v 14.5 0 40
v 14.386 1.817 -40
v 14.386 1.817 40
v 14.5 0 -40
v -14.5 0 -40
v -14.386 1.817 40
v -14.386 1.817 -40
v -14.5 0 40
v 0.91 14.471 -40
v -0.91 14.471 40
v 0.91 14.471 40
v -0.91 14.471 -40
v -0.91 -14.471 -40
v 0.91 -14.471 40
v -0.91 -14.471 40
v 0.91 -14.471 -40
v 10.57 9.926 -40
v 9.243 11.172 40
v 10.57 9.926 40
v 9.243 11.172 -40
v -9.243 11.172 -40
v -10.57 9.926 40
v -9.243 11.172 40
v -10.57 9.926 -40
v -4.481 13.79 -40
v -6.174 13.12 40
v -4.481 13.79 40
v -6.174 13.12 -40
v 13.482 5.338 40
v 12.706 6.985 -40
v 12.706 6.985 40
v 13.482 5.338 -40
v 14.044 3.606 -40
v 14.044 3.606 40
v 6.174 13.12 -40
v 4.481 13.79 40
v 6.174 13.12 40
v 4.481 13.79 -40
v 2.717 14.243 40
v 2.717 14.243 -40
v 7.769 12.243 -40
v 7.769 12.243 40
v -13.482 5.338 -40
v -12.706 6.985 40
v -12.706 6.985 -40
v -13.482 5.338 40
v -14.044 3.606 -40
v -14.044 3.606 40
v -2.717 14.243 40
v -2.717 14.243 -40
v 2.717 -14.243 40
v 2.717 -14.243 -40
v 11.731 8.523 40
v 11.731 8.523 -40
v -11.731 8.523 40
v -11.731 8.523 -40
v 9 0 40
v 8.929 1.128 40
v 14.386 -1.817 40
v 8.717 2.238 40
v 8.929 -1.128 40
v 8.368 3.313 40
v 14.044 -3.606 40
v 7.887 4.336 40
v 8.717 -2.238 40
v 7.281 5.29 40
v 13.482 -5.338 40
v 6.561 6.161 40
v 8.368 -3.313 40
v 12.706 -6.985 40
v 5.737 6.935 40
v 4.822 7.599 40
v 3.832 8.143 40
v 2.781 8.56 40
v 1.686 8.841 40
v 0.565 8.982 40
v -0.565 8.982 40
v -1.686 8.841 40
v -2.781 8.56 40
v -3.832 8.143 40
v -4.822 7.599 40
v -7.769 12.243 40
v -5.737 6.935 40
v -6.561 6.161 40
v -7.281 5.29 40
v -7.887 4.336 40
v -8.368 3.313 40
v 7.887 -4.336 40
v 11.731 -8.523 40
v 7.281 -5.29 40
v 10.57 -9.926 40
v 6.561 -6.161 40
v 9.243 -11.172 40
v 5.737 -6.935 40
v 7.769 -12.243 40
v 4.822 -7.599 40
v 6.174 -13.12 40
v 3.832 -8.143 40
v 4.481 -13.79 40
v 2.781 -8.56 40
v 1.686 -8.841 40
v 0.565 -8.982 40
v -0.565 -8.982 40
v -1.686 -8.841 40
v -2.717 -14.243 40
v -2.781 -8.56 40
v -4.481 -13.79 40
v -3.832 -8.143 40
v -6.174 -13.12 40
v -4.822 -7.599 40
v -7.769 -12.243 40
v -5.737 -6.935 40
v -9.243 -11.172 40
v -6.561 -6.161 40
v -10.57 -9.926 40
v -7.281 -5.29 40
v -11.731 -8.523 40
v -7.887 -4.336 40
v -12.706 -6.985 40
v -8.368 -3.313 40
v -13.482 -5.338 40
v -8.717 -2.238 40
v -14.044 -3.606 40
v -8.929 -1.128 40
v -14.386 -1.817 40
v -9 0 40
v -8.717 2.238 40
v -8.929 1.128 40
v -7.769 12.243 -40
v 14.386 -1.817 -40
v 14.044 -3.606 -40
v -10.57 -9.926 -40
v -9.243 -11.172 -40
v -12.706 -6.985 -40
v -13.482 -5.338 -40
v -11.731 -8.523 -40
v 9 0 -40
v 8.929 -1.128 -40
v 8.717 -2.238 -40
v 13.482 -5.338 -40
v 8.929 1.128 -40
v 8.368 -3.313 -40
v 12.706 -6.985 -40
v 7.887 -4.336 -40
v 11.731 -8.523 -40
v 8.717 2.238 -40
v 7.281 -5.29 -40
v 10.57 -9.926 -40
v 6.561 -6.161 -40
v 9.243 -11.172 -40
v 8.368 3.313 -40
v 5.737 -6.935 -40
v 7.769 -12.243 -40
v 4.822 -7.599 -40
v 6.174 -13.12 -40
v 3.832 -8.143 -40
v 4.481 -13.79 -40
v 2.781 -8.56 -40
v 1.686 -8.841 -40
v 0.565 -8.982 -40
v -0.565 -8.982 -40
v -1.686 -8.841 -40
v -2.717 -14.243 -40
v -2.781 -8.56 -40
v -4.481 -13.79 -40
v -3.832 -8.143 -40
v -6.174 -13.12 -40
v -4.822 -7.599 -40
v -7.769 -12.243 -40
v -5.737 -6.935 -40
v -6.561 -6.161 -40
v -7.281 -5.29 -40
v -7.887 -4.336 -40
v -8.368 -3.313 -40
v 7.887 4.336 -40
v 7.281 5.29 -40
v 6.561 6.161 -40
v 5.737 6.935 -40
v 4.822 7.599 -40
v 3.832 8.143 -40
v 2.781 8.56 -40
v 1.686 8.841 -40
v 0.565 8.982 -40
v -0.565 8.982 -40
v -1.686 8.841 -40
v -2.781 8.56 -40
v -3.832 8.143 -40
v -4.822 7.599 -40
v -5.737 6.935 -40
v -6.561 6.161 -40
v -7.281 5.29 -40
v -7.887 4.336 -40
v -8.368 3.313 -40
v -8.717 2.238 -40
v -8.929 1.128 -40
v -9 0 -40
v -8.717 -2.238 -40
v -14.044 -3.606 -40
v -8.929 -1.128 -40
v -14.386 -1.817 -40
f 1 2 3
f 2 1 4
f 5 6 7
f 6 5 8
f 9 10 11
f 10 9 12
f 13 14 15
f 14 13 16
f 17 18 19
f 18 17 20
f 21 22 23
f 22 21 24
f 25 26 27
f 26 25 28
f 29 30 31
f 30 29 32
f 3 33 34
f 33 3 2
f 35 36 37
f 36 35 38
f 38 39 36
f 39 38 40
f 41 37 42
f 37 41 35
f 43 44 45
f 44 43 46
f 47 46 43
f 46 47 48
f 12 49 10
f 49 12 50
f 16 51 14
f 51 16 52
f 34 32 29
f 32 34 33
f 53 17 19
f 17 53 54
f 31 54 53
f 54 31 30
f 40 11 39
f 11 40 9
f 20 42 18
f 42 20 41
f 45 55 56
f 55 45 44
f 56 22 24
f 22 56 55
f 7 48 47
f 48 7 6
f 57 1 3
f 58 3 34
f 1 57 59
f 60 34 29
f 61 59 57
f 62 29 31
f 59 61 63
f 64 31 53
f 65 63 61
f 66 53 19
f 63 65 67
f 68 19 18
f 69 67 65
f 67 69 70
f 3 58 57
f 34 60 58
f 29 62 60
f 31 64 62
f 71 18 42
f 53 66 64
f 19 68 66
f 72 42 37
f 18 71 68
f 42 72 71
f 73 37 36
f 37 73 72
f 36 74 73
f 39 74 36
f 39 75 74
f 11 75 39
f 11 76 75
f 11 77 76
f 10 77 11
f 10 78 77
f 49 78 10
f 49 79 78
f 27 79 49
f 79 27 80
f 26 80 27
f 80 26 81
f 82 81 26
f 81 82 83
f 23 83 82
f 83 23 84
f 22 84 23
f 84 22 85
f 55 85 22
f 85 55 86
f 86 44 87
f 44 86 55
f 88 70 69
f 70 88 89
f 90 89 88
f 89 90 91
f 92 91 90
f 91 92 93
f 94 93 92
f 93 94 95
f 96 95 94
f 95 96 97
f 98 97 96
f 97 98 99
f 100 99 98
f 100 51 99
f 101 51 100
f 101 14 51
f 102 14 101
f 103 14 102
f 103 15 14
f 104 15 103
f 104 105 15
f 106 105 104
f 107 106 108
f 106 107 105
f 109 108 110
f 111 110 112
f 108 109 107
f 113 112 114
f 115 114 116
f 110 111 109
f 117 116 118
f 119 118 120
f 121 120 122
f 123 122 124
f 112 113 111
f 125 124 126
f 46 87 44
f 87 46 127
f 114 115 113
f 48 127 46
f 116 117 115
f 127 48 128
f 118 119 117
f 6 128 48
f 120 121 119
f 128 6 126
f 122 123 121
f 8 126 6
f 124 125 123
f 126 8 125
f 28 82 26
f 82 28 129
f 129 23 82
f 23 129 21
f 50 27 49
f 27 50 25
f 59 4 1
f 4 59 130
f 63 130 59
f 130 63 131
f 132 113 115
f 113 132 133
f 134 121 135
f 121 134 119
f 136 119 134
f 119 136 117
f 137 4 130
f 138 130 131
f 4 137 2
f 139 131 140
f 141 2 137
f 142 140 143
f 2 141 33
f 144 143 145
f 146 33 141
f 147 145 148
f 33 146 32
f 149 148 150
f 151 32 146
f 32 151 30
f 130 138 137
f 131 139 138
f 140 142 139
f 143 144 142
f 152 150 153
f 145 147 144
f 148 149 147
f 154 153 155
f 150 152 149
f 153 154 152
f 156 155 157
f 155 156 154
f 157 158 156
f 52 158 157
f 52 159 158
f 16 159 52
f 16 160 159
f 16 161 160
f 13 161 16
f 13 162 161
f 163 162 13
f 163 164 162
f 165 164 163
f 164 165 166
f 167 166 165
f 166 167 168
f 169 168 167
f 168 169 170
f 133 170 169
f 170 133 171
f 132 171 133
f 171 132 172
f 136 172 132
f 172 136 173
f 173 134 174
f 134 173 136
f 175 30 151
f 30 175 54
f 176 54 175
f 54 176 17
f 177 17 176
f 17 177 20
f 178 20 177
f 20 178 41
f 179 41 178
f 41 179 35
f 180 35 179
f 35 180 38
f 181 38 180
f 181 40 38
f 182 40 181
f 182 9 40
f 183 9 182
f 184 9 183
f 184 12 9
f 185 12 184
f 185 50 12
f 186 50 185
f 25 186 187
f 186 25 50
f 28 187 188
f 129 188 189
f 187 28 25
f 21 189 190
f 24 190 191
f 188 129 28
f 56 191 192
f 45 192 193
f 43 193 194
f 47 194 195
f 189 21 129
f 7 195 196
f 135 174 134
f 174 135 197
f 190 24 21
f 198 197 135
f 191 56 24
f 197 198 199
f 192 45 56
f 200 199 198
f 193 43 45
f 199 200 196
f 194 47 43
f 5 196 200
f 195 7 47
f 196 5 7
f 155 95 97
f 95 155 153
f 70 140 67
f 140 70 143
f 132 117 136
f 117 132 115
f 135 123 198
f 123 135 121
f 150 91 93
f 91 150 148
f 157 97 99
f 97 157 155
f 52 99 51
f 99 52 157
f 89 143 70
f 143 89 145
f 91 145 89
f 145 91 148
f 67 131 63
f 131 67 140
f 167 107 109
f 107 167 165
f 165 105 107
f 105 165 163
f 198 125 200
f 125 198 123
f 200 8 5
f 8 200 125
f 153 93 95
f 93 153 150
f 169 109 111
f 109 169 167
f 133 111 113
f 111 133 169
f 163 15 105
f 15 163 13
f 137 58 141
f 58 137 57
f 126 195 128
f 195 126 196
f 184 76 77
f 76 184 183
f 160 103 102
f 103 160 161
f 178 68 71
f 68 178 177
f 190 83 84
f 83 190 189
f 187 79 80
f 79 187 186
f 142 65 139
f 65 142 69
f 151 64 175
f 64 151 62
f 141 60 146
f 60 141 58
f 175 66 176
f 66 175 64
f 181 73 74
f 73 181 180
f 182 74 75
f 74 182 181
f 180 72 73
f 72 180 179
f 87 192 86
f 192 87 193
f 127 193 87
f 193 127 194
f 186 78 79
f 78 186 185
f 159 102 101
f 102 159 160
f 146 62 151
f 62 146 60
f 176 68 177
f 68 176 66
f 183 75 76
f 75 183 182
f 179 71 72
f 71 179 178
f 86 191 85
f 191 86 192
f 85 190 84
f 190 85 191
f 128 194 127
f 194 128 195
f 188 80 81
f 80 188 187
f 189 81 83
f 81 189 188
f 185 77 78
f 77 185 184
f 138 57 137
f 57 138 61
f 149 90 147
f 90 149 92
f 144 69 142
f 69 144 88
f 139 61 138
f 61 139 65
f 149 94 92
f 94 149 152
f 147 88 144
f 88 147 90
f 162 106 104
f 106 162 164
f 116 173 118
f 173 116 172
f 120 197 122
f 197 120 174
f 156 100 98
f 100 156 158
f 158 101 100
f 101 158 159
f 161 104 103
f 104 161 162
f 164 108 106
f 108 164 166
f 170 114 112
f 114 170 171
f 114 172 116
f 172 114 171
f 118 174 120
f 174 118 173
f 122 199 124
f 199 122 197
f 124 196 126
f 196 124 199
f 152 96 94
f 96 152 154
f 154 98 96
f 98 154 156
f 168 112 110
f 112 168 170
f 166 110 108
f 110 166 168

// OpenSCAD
$fn = 50;


difference() {
	union() {
		translate(v = [0, 0, -40.0000000000]) {
			cylinder(h = 80, r = 14.5000000000);
		}
	}
	union() {
		translate(v = [0, 0, -100.0000000000]) {
			cylinder(h = 200, r = 9);
		}
	}
}
